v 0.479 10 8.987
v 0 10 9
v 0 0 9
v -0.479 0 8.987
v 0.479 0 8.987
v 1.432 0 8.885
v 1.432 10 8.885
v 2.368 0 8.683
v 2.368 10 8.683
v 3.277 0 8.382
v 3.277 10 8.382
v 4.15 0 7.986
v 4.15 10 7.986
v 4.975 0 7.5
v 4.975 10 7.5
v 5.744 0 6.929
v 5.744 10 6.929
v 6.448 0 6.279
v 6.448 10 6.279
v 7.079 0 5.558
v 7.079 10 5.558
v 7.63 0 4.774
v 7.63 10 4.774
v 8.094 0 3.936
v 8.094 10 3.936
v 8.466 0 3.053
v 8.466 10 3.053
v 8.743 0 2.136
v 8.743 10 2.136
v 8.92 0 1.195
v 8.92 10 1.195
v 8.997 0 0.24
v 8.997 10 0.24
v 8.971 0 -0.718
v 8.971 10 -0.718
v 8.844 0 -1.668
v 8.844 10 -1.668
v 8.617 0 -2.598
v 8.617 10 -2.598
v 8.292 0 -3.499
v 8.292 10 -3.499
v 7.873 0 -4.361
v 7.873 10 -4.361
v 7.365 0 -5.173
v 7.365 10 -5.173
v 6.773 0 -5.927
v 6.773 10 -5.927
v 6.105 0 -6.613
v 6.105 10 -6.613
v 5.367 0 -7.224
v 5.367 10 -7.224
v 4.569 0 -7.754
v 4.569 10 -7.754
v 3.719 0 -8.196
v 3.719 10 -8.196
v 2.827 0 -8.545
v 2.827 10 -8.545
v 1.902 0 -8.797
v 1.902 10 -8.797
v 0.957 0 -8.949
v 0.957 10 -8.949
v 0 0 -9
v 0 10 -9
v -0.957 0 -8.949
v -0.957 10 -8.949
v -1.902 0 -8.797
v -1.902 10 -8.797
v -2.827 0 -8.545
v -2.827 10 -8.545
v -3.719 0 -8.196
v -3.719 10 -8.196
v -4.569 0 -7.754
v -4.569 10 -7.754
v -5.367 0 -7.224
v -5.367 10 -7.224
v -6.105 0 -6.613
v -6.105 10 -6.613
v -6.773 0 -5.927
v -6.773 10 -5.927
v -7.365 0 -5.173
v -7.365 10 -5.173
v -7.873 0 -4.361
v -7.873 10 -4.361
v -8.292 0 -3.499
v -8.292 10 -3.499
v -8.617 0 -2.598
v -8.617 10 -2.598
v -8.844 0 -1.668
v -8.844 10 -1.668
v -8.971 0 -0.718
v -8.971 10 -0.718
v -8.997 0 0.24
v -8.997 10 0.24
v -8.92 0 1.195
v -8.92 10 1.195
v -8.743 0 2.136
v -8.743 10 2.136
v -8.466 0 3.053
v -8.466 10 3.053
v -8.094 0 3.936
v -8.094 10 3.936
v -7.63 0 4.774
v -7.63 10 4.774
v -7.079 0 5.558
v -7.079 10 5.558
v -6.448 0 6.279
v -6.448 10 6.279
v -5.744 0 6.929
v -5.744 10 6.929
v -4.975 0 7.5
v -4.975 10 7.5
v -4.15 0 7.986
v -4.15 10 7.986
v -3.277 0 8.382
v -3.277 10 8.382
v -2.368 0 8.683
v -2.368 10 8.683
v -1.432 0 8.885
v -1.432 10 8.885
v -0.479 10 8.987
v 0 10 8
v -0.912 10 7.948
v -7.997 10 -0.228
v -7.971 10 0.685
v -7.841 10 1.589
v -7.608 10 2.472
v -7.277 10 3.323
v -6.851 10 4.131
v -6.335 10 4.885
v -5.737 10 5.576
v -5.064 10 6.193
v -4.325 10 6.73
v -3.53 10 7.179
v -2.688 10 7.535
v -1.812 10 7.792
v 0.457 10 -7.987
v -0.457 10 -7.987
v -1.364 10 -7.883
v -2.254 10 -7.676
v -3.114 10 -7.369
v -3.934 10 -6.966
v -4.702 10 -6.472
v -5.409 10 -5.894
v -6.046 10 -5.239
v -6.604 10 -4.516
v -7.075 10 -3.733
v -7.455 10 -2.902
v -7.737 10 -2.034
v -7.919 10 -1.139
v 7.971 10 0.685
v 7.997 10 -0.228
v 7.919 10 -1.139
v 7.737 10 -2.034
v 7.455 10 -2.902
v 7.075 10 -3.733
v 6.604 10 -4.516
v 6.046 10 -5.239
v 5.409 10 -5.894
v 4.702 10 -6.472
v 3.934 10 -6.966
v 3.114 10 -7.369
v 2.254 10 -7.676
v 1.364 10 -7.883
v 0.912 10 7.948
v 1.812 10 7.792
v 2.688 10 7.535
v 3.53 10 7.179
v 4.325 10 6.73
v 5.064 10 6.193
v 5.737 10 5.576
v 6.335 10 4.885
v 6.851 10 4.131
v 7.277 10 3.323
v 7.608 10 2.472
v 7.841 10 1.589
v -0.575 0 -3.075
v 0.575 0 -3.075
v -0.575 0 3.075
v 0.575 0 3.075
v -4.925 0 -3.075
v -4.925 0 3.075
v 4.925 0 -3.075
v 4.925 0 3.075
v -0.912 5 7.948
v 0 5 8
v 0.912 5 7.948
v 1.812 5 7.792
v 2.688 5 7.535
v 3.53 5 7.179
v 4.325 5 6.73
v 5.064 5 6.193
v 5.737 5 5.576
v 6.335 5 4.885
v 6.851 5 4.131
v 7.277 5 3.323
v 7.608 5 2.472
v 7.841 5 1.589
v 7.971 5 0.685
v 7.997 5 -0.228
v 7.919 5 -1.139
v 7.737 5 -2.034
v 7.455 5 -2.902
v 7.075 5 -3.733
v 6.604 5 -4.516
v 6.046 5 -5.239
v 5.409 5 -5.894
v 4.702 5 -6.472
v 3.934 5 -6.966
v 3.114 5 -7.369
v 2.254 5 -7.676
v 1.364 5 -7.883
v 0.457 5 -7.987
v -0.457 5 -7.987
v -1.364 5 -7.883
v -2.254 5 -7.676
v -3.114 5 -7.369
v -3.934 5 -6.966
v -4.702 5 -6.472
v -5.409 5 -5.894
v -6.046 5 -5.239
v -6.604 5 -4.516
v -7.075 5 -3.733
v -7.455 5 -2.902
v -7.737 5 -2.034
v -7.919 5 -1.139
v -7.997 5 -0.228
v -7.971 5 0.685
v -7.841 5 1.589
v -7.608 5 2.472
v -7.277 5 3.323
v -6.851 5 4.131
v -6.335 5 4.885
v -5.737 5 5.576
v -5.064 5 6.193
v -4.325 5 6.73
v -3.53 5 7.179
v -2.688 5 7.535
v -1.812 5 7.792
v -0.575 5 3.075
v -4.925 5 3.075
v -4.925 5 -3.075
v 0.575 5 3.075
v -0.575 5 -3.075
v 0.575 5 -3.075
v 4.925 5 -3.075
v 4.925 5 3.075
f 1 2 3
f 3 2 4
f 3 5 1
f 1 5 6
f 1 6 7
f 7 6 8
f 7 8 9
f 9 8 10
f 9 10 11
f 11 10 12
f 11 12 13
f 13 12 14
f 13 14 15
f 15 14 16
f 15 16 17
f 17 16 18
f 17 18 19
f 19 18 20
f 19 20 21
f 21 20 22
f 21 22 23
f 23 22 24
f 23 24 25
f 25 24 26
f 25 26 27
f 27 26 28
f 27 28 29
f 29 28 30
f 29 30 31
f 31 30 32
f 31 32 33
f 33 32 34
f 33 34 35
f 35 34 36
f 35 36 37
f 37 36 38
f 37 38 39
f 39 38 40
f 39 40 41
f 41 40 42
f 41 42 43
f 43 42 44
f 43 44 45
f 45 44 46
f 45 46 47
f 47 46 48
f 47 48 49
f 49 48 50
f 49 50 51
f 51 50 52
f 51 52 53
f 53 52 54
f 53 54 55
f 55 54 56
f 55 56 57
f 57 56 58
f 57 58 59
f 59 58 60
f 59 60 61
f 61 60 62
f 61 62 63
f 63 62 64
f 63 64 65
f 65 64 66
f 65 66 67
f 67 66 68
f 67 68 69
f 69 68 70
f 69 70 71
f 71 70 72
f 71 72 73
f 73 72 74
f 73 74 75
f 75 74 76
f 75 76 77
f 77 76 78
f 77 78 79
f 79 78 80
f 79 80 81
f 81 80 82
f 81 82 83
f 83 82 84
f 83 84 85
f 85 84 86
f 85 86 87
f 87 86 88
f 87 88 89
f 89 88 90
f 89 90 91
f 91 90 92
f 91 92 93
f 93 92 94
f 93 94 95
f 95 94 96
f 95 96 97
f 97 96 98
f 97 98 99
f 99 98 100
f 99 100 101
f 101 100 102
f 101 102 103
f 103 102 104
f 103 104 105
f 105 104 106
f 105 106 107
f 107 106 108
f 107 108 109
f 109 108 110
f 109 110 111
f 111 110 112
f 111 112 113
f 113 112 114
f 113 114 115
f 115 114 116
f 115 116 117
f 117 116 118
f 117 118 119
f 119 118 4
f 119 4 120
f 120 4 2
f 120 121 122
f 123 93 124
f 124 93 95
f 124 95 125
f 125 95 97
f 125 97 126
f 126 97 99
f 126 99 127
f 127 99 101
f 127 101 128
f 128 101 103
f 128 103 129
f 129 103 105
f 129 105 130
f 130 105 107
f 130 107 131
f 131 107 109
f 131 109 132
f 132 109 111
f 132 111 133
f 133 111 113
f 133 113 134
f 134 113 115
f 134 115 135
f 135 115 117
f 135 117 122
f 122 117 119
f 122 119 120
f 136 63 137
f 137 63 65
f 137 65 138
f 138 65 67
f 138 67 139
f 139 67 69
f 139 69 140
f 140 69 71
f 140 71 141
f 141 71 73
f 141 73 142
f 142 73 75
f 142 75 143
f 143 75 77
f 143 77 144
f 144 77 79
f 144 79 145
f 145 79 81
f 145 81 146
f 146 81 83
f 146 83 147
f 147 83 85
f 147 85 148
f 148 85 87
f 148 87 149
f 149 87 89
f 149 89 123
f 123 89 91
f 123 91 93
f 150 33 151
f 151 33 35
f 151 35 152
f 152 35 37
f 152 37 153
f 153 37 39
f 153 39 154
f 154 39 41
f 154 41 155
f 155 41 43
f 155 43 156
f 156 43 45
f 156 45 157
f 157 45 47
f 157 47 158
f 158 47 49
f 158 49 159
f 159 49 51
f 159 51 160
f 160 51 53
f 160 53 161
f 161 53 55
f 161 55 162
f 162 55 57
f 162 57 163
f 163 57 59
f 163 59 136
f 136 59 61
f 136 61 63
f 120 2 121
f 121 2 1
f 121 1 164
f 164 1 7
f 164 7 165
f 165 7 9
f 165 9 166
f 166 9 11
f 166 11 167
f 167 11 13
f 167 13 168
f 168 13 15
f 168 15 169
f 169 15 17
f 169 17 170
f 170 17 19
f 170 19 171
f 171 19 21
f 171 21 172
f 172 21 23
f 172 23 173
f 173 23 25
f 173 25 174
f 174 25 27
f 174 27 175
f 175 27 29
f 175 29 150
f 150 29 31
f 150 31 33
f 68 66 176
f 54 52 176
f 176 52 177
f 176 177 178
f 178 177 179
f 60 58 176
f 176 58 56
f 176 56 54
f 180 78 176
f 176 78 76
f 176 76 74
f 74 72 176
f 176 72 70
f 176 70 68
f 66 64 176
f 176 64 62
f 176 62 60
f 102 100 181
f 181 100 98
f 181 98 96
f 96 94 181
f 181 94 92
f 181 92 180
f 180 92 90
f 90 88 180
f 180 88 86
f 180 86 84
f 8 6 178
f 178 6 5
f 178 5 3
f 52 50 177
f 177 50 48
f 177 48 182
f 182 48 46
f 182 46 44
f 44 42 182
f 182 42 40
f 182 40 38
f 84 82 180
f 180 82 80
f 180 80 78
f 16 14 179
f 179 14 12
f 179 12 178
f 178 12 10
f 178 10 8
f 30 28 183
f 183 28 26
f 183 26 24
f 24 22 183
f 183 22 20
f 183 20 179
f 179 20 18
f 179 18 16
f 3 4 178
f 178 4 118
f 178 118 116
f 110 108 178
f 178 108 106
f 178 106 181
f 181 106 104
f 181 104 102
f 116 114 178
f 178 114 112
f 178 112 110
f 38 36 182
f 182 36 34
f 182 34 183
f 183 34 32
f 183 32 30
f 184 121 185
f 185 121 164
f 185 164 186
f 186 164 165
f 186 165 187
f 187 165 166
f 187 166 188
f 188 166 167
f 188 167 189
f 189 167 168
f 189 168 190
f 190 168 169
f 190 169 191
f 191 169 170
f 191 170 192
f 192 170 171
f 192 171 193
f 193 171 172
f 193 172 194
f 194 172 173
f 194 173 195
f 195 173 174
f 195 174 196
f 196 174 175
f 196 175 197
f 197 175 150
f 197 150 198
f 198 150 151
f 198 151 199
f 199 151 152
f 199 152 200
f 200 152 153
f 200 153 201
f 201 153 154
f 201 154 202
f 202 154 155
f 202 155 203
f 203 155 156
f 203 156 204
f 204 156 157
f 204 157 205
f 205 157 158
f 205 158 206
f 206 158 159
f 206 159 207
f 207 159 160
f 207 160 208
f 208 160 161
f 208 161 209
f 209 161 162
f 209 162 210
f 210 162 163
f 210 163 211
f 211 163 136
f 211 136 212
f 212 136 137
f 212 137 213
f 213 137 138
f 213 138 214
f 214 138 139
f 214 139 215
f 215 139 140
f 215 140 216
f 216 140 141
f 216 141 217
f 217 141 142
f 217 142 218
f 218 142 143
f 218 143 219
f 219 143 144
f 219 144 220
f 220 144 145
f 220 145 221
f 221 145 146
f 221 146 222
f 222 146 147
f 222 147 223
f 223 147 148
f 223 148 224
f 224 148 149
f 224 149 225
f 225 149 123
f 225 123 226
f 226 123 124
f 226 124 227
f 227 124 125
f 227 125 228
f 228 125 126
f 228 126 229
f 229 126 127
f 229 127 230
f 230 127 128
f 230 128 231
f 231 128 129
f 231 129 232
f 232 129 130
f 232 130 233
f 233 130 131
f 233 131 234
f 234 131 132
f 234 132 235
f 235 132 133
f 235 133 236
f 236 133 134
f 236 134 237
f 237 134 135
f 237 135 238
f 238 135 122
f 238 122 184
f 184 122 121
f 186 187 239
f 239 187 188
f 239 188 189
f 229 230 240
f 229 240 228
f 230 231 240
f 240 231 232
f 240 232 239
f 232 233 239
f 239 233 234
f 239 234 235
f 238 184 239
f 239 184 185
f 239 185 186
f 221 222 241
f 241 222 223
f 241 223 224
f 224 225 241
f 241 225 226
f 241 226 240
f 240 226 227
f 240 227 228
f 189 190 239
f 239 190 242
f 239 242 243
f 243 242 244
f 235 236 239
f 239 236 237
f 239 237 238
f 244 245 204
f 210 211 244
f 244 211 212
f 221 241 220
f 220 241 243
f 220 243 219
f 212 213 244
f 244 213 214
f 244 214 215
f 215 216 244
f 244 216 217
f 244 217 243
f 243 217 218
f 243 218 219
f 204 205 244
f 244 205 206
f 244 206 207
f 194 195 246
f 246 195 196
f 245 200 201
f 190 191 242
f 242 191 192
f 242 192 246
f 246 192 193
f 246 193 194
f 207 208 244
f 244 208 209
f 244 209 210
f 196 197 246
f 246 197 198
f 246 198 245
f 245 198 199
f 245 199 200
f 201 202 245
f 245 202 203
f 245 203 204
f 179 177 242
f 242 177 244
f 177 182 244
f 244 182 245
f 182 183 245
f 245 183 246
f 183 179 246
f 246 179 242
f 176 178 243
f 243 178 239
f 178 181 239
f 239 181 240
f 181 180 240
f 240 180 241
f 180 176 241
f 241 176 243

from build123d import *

# Parameters (mm, degrees)
SKETCH2_R           = 9
BOSS_EXTRUDE2_DEPTH = 10
SKETCH3_R           = 8
CUT_EXTRUDE1_DEPTH  = 5
SKETCH4_W           = 4.35
SKETCH4_H           = 6.15
CUT_EXTRUDE2_DEPTH  = 6


with BuildPart() as part:
    # Sketch2 → Boss-Extrude2 (new body)
    with BuildSketch(Plane(origin=(0, 0, 0), x_dir=(1, 0, 0), z_dir=(0, 1, 0))):
        Circle(SKETCH2_R)
    extrude(amount=BOSS_EXTRUDE2_DEPTH)

    # Sketch3 → Cut-Extrude1 (cut)
    with BuildSketch(Plane(origin=(0, 10, 0), x_dir=(1, 0, 0), z_dir=(0, 1, 0))):
        Circle(SKETCH3_R)
    extrude(amount=-CUT_EXTRUDE1_DEPTH, mode=Mode.SUBTRACT)

    # Sketch4 → Cut-Extrude2 (cut, through all)
    with BuildSketch(Plane(origin=(0, 5, 0), x_dir=(1, 0, 0), z_dir=(0, 1, 0))):
        with Locations((2.75, 0)):
            Rectangle(SKETCH4_W, SKETCH4_H)
        with Locations((-2.75, 0)):
            Rectangle(SKETCH4_W, SKETCH4_H)
    extrude(amount=-CUT_EXTRUDE2_DEPTH, mode=Mode.SUBTRACT)


solid = part.part
